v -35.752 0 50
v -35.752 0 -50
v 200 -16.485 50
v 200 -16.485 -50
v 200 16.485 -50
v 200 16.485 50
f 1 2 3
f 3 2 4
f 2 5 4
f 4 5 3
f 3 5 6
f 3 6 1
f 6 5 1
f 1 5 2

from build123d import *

# Parameters (mm, degrees)
SKETCH2_W = 236.327347182
SKETCH2_H = 100
SKETCH3_W = 236.327347182
SKETCH3_H = 100
SKETCH4_W = 100
SKETCH4_H = 32.970724778


with BuildPart() as body_1:
    # Sketch2 → Surface-Plane1: a flat surface bounded by the sketch
    with BuildSketch(Plane(origin=(-0.173966376, 2.487835086, 0), x_dir=(0.9975640502598243, 0.06975647374412548, 0), z_dir=(0.06975647374412547, -0.9975640502598242, 0)), mode=Mode.PRIVATE) as surface_plane1_1_region:
        with Locations((82.49909721, 0)):
            Rectangle(SKETCH2_W, SKETCH2_H)
    surface_plane1_1 = surface_plane1_1_region.sketch.faces()[0]
    # Sketch7 → Surface-Plane3: a flat surface bounded by the sketch
    with BuildSketch(Plane.XY.offset(50), mode=Mode.PRIVATE) as surface_plane3_2_region:
        Polygon((-35.751665642, 0), (200, 16.485362389), (200, -16.485362389), align=None)
    surface_plane3_2 = surface_plane3_2_region.sketch.faces()[0]
    # Sketch3 → Surface-Plane2: a flat surface bounded by the sketch
    with BuildSketch(Plane(origin=(-0.173966376, -2.487835086, 0), x_dir=(0.9975640502598243, -0.06975647374412548, 0), z_dir=(-0.06975647374412547, -0.9975640502598242, 0)), mode=Mode.PRIVATE) as surface_plane2_3_region:
        with Locations((82.49909721, 0)):
            Rectangle(SKETCH3_W, SKETCH3_H)
    surface_plane2_3 = surface_plane2_3_region.sketch.faces()[0]
    # Sketch4 → Surface-Plane4: a flat surface bounded by the sketch
    with BuildSketch(Plane(origin=(200, 0, 0), x_dir=(0, 0, -1), z_dir=(1, 0, 0)), mode=Mode.PRIVATE) as surface_plane4_4_region:
        Rectangle(SKETCH4_W, SKETCH4_H)
    surface_plane4_4 = surface_plane4_4_region.sketch.faces()[0]
    # Sketch5 → Surface-Plane5: a flat surface bounded by the sketch
    with BuildSketch(Plane.XY.offset(-50), mode=Mode.PRIVATE) as surface_plane5_5_region:
        Polygon((-35.751665642, 0), (200, 16.485362389), (200, -16.485362389), align=None)
    surface_plane5_5 = surface_plane5_5_region.sketch.faces()[0]
    # Surface-Knit1: the surfaces knitted into a closed skin and filled: a solid
    add(Solid(Shell(Face.sew_faces(surface_plane1_1.faces() + surface_plane3_2.faces() + surface_plane2_3.faces() + surface_plane4_4.faces() + surface_plane5_5.faces())[0])))


solid = body_1.part
